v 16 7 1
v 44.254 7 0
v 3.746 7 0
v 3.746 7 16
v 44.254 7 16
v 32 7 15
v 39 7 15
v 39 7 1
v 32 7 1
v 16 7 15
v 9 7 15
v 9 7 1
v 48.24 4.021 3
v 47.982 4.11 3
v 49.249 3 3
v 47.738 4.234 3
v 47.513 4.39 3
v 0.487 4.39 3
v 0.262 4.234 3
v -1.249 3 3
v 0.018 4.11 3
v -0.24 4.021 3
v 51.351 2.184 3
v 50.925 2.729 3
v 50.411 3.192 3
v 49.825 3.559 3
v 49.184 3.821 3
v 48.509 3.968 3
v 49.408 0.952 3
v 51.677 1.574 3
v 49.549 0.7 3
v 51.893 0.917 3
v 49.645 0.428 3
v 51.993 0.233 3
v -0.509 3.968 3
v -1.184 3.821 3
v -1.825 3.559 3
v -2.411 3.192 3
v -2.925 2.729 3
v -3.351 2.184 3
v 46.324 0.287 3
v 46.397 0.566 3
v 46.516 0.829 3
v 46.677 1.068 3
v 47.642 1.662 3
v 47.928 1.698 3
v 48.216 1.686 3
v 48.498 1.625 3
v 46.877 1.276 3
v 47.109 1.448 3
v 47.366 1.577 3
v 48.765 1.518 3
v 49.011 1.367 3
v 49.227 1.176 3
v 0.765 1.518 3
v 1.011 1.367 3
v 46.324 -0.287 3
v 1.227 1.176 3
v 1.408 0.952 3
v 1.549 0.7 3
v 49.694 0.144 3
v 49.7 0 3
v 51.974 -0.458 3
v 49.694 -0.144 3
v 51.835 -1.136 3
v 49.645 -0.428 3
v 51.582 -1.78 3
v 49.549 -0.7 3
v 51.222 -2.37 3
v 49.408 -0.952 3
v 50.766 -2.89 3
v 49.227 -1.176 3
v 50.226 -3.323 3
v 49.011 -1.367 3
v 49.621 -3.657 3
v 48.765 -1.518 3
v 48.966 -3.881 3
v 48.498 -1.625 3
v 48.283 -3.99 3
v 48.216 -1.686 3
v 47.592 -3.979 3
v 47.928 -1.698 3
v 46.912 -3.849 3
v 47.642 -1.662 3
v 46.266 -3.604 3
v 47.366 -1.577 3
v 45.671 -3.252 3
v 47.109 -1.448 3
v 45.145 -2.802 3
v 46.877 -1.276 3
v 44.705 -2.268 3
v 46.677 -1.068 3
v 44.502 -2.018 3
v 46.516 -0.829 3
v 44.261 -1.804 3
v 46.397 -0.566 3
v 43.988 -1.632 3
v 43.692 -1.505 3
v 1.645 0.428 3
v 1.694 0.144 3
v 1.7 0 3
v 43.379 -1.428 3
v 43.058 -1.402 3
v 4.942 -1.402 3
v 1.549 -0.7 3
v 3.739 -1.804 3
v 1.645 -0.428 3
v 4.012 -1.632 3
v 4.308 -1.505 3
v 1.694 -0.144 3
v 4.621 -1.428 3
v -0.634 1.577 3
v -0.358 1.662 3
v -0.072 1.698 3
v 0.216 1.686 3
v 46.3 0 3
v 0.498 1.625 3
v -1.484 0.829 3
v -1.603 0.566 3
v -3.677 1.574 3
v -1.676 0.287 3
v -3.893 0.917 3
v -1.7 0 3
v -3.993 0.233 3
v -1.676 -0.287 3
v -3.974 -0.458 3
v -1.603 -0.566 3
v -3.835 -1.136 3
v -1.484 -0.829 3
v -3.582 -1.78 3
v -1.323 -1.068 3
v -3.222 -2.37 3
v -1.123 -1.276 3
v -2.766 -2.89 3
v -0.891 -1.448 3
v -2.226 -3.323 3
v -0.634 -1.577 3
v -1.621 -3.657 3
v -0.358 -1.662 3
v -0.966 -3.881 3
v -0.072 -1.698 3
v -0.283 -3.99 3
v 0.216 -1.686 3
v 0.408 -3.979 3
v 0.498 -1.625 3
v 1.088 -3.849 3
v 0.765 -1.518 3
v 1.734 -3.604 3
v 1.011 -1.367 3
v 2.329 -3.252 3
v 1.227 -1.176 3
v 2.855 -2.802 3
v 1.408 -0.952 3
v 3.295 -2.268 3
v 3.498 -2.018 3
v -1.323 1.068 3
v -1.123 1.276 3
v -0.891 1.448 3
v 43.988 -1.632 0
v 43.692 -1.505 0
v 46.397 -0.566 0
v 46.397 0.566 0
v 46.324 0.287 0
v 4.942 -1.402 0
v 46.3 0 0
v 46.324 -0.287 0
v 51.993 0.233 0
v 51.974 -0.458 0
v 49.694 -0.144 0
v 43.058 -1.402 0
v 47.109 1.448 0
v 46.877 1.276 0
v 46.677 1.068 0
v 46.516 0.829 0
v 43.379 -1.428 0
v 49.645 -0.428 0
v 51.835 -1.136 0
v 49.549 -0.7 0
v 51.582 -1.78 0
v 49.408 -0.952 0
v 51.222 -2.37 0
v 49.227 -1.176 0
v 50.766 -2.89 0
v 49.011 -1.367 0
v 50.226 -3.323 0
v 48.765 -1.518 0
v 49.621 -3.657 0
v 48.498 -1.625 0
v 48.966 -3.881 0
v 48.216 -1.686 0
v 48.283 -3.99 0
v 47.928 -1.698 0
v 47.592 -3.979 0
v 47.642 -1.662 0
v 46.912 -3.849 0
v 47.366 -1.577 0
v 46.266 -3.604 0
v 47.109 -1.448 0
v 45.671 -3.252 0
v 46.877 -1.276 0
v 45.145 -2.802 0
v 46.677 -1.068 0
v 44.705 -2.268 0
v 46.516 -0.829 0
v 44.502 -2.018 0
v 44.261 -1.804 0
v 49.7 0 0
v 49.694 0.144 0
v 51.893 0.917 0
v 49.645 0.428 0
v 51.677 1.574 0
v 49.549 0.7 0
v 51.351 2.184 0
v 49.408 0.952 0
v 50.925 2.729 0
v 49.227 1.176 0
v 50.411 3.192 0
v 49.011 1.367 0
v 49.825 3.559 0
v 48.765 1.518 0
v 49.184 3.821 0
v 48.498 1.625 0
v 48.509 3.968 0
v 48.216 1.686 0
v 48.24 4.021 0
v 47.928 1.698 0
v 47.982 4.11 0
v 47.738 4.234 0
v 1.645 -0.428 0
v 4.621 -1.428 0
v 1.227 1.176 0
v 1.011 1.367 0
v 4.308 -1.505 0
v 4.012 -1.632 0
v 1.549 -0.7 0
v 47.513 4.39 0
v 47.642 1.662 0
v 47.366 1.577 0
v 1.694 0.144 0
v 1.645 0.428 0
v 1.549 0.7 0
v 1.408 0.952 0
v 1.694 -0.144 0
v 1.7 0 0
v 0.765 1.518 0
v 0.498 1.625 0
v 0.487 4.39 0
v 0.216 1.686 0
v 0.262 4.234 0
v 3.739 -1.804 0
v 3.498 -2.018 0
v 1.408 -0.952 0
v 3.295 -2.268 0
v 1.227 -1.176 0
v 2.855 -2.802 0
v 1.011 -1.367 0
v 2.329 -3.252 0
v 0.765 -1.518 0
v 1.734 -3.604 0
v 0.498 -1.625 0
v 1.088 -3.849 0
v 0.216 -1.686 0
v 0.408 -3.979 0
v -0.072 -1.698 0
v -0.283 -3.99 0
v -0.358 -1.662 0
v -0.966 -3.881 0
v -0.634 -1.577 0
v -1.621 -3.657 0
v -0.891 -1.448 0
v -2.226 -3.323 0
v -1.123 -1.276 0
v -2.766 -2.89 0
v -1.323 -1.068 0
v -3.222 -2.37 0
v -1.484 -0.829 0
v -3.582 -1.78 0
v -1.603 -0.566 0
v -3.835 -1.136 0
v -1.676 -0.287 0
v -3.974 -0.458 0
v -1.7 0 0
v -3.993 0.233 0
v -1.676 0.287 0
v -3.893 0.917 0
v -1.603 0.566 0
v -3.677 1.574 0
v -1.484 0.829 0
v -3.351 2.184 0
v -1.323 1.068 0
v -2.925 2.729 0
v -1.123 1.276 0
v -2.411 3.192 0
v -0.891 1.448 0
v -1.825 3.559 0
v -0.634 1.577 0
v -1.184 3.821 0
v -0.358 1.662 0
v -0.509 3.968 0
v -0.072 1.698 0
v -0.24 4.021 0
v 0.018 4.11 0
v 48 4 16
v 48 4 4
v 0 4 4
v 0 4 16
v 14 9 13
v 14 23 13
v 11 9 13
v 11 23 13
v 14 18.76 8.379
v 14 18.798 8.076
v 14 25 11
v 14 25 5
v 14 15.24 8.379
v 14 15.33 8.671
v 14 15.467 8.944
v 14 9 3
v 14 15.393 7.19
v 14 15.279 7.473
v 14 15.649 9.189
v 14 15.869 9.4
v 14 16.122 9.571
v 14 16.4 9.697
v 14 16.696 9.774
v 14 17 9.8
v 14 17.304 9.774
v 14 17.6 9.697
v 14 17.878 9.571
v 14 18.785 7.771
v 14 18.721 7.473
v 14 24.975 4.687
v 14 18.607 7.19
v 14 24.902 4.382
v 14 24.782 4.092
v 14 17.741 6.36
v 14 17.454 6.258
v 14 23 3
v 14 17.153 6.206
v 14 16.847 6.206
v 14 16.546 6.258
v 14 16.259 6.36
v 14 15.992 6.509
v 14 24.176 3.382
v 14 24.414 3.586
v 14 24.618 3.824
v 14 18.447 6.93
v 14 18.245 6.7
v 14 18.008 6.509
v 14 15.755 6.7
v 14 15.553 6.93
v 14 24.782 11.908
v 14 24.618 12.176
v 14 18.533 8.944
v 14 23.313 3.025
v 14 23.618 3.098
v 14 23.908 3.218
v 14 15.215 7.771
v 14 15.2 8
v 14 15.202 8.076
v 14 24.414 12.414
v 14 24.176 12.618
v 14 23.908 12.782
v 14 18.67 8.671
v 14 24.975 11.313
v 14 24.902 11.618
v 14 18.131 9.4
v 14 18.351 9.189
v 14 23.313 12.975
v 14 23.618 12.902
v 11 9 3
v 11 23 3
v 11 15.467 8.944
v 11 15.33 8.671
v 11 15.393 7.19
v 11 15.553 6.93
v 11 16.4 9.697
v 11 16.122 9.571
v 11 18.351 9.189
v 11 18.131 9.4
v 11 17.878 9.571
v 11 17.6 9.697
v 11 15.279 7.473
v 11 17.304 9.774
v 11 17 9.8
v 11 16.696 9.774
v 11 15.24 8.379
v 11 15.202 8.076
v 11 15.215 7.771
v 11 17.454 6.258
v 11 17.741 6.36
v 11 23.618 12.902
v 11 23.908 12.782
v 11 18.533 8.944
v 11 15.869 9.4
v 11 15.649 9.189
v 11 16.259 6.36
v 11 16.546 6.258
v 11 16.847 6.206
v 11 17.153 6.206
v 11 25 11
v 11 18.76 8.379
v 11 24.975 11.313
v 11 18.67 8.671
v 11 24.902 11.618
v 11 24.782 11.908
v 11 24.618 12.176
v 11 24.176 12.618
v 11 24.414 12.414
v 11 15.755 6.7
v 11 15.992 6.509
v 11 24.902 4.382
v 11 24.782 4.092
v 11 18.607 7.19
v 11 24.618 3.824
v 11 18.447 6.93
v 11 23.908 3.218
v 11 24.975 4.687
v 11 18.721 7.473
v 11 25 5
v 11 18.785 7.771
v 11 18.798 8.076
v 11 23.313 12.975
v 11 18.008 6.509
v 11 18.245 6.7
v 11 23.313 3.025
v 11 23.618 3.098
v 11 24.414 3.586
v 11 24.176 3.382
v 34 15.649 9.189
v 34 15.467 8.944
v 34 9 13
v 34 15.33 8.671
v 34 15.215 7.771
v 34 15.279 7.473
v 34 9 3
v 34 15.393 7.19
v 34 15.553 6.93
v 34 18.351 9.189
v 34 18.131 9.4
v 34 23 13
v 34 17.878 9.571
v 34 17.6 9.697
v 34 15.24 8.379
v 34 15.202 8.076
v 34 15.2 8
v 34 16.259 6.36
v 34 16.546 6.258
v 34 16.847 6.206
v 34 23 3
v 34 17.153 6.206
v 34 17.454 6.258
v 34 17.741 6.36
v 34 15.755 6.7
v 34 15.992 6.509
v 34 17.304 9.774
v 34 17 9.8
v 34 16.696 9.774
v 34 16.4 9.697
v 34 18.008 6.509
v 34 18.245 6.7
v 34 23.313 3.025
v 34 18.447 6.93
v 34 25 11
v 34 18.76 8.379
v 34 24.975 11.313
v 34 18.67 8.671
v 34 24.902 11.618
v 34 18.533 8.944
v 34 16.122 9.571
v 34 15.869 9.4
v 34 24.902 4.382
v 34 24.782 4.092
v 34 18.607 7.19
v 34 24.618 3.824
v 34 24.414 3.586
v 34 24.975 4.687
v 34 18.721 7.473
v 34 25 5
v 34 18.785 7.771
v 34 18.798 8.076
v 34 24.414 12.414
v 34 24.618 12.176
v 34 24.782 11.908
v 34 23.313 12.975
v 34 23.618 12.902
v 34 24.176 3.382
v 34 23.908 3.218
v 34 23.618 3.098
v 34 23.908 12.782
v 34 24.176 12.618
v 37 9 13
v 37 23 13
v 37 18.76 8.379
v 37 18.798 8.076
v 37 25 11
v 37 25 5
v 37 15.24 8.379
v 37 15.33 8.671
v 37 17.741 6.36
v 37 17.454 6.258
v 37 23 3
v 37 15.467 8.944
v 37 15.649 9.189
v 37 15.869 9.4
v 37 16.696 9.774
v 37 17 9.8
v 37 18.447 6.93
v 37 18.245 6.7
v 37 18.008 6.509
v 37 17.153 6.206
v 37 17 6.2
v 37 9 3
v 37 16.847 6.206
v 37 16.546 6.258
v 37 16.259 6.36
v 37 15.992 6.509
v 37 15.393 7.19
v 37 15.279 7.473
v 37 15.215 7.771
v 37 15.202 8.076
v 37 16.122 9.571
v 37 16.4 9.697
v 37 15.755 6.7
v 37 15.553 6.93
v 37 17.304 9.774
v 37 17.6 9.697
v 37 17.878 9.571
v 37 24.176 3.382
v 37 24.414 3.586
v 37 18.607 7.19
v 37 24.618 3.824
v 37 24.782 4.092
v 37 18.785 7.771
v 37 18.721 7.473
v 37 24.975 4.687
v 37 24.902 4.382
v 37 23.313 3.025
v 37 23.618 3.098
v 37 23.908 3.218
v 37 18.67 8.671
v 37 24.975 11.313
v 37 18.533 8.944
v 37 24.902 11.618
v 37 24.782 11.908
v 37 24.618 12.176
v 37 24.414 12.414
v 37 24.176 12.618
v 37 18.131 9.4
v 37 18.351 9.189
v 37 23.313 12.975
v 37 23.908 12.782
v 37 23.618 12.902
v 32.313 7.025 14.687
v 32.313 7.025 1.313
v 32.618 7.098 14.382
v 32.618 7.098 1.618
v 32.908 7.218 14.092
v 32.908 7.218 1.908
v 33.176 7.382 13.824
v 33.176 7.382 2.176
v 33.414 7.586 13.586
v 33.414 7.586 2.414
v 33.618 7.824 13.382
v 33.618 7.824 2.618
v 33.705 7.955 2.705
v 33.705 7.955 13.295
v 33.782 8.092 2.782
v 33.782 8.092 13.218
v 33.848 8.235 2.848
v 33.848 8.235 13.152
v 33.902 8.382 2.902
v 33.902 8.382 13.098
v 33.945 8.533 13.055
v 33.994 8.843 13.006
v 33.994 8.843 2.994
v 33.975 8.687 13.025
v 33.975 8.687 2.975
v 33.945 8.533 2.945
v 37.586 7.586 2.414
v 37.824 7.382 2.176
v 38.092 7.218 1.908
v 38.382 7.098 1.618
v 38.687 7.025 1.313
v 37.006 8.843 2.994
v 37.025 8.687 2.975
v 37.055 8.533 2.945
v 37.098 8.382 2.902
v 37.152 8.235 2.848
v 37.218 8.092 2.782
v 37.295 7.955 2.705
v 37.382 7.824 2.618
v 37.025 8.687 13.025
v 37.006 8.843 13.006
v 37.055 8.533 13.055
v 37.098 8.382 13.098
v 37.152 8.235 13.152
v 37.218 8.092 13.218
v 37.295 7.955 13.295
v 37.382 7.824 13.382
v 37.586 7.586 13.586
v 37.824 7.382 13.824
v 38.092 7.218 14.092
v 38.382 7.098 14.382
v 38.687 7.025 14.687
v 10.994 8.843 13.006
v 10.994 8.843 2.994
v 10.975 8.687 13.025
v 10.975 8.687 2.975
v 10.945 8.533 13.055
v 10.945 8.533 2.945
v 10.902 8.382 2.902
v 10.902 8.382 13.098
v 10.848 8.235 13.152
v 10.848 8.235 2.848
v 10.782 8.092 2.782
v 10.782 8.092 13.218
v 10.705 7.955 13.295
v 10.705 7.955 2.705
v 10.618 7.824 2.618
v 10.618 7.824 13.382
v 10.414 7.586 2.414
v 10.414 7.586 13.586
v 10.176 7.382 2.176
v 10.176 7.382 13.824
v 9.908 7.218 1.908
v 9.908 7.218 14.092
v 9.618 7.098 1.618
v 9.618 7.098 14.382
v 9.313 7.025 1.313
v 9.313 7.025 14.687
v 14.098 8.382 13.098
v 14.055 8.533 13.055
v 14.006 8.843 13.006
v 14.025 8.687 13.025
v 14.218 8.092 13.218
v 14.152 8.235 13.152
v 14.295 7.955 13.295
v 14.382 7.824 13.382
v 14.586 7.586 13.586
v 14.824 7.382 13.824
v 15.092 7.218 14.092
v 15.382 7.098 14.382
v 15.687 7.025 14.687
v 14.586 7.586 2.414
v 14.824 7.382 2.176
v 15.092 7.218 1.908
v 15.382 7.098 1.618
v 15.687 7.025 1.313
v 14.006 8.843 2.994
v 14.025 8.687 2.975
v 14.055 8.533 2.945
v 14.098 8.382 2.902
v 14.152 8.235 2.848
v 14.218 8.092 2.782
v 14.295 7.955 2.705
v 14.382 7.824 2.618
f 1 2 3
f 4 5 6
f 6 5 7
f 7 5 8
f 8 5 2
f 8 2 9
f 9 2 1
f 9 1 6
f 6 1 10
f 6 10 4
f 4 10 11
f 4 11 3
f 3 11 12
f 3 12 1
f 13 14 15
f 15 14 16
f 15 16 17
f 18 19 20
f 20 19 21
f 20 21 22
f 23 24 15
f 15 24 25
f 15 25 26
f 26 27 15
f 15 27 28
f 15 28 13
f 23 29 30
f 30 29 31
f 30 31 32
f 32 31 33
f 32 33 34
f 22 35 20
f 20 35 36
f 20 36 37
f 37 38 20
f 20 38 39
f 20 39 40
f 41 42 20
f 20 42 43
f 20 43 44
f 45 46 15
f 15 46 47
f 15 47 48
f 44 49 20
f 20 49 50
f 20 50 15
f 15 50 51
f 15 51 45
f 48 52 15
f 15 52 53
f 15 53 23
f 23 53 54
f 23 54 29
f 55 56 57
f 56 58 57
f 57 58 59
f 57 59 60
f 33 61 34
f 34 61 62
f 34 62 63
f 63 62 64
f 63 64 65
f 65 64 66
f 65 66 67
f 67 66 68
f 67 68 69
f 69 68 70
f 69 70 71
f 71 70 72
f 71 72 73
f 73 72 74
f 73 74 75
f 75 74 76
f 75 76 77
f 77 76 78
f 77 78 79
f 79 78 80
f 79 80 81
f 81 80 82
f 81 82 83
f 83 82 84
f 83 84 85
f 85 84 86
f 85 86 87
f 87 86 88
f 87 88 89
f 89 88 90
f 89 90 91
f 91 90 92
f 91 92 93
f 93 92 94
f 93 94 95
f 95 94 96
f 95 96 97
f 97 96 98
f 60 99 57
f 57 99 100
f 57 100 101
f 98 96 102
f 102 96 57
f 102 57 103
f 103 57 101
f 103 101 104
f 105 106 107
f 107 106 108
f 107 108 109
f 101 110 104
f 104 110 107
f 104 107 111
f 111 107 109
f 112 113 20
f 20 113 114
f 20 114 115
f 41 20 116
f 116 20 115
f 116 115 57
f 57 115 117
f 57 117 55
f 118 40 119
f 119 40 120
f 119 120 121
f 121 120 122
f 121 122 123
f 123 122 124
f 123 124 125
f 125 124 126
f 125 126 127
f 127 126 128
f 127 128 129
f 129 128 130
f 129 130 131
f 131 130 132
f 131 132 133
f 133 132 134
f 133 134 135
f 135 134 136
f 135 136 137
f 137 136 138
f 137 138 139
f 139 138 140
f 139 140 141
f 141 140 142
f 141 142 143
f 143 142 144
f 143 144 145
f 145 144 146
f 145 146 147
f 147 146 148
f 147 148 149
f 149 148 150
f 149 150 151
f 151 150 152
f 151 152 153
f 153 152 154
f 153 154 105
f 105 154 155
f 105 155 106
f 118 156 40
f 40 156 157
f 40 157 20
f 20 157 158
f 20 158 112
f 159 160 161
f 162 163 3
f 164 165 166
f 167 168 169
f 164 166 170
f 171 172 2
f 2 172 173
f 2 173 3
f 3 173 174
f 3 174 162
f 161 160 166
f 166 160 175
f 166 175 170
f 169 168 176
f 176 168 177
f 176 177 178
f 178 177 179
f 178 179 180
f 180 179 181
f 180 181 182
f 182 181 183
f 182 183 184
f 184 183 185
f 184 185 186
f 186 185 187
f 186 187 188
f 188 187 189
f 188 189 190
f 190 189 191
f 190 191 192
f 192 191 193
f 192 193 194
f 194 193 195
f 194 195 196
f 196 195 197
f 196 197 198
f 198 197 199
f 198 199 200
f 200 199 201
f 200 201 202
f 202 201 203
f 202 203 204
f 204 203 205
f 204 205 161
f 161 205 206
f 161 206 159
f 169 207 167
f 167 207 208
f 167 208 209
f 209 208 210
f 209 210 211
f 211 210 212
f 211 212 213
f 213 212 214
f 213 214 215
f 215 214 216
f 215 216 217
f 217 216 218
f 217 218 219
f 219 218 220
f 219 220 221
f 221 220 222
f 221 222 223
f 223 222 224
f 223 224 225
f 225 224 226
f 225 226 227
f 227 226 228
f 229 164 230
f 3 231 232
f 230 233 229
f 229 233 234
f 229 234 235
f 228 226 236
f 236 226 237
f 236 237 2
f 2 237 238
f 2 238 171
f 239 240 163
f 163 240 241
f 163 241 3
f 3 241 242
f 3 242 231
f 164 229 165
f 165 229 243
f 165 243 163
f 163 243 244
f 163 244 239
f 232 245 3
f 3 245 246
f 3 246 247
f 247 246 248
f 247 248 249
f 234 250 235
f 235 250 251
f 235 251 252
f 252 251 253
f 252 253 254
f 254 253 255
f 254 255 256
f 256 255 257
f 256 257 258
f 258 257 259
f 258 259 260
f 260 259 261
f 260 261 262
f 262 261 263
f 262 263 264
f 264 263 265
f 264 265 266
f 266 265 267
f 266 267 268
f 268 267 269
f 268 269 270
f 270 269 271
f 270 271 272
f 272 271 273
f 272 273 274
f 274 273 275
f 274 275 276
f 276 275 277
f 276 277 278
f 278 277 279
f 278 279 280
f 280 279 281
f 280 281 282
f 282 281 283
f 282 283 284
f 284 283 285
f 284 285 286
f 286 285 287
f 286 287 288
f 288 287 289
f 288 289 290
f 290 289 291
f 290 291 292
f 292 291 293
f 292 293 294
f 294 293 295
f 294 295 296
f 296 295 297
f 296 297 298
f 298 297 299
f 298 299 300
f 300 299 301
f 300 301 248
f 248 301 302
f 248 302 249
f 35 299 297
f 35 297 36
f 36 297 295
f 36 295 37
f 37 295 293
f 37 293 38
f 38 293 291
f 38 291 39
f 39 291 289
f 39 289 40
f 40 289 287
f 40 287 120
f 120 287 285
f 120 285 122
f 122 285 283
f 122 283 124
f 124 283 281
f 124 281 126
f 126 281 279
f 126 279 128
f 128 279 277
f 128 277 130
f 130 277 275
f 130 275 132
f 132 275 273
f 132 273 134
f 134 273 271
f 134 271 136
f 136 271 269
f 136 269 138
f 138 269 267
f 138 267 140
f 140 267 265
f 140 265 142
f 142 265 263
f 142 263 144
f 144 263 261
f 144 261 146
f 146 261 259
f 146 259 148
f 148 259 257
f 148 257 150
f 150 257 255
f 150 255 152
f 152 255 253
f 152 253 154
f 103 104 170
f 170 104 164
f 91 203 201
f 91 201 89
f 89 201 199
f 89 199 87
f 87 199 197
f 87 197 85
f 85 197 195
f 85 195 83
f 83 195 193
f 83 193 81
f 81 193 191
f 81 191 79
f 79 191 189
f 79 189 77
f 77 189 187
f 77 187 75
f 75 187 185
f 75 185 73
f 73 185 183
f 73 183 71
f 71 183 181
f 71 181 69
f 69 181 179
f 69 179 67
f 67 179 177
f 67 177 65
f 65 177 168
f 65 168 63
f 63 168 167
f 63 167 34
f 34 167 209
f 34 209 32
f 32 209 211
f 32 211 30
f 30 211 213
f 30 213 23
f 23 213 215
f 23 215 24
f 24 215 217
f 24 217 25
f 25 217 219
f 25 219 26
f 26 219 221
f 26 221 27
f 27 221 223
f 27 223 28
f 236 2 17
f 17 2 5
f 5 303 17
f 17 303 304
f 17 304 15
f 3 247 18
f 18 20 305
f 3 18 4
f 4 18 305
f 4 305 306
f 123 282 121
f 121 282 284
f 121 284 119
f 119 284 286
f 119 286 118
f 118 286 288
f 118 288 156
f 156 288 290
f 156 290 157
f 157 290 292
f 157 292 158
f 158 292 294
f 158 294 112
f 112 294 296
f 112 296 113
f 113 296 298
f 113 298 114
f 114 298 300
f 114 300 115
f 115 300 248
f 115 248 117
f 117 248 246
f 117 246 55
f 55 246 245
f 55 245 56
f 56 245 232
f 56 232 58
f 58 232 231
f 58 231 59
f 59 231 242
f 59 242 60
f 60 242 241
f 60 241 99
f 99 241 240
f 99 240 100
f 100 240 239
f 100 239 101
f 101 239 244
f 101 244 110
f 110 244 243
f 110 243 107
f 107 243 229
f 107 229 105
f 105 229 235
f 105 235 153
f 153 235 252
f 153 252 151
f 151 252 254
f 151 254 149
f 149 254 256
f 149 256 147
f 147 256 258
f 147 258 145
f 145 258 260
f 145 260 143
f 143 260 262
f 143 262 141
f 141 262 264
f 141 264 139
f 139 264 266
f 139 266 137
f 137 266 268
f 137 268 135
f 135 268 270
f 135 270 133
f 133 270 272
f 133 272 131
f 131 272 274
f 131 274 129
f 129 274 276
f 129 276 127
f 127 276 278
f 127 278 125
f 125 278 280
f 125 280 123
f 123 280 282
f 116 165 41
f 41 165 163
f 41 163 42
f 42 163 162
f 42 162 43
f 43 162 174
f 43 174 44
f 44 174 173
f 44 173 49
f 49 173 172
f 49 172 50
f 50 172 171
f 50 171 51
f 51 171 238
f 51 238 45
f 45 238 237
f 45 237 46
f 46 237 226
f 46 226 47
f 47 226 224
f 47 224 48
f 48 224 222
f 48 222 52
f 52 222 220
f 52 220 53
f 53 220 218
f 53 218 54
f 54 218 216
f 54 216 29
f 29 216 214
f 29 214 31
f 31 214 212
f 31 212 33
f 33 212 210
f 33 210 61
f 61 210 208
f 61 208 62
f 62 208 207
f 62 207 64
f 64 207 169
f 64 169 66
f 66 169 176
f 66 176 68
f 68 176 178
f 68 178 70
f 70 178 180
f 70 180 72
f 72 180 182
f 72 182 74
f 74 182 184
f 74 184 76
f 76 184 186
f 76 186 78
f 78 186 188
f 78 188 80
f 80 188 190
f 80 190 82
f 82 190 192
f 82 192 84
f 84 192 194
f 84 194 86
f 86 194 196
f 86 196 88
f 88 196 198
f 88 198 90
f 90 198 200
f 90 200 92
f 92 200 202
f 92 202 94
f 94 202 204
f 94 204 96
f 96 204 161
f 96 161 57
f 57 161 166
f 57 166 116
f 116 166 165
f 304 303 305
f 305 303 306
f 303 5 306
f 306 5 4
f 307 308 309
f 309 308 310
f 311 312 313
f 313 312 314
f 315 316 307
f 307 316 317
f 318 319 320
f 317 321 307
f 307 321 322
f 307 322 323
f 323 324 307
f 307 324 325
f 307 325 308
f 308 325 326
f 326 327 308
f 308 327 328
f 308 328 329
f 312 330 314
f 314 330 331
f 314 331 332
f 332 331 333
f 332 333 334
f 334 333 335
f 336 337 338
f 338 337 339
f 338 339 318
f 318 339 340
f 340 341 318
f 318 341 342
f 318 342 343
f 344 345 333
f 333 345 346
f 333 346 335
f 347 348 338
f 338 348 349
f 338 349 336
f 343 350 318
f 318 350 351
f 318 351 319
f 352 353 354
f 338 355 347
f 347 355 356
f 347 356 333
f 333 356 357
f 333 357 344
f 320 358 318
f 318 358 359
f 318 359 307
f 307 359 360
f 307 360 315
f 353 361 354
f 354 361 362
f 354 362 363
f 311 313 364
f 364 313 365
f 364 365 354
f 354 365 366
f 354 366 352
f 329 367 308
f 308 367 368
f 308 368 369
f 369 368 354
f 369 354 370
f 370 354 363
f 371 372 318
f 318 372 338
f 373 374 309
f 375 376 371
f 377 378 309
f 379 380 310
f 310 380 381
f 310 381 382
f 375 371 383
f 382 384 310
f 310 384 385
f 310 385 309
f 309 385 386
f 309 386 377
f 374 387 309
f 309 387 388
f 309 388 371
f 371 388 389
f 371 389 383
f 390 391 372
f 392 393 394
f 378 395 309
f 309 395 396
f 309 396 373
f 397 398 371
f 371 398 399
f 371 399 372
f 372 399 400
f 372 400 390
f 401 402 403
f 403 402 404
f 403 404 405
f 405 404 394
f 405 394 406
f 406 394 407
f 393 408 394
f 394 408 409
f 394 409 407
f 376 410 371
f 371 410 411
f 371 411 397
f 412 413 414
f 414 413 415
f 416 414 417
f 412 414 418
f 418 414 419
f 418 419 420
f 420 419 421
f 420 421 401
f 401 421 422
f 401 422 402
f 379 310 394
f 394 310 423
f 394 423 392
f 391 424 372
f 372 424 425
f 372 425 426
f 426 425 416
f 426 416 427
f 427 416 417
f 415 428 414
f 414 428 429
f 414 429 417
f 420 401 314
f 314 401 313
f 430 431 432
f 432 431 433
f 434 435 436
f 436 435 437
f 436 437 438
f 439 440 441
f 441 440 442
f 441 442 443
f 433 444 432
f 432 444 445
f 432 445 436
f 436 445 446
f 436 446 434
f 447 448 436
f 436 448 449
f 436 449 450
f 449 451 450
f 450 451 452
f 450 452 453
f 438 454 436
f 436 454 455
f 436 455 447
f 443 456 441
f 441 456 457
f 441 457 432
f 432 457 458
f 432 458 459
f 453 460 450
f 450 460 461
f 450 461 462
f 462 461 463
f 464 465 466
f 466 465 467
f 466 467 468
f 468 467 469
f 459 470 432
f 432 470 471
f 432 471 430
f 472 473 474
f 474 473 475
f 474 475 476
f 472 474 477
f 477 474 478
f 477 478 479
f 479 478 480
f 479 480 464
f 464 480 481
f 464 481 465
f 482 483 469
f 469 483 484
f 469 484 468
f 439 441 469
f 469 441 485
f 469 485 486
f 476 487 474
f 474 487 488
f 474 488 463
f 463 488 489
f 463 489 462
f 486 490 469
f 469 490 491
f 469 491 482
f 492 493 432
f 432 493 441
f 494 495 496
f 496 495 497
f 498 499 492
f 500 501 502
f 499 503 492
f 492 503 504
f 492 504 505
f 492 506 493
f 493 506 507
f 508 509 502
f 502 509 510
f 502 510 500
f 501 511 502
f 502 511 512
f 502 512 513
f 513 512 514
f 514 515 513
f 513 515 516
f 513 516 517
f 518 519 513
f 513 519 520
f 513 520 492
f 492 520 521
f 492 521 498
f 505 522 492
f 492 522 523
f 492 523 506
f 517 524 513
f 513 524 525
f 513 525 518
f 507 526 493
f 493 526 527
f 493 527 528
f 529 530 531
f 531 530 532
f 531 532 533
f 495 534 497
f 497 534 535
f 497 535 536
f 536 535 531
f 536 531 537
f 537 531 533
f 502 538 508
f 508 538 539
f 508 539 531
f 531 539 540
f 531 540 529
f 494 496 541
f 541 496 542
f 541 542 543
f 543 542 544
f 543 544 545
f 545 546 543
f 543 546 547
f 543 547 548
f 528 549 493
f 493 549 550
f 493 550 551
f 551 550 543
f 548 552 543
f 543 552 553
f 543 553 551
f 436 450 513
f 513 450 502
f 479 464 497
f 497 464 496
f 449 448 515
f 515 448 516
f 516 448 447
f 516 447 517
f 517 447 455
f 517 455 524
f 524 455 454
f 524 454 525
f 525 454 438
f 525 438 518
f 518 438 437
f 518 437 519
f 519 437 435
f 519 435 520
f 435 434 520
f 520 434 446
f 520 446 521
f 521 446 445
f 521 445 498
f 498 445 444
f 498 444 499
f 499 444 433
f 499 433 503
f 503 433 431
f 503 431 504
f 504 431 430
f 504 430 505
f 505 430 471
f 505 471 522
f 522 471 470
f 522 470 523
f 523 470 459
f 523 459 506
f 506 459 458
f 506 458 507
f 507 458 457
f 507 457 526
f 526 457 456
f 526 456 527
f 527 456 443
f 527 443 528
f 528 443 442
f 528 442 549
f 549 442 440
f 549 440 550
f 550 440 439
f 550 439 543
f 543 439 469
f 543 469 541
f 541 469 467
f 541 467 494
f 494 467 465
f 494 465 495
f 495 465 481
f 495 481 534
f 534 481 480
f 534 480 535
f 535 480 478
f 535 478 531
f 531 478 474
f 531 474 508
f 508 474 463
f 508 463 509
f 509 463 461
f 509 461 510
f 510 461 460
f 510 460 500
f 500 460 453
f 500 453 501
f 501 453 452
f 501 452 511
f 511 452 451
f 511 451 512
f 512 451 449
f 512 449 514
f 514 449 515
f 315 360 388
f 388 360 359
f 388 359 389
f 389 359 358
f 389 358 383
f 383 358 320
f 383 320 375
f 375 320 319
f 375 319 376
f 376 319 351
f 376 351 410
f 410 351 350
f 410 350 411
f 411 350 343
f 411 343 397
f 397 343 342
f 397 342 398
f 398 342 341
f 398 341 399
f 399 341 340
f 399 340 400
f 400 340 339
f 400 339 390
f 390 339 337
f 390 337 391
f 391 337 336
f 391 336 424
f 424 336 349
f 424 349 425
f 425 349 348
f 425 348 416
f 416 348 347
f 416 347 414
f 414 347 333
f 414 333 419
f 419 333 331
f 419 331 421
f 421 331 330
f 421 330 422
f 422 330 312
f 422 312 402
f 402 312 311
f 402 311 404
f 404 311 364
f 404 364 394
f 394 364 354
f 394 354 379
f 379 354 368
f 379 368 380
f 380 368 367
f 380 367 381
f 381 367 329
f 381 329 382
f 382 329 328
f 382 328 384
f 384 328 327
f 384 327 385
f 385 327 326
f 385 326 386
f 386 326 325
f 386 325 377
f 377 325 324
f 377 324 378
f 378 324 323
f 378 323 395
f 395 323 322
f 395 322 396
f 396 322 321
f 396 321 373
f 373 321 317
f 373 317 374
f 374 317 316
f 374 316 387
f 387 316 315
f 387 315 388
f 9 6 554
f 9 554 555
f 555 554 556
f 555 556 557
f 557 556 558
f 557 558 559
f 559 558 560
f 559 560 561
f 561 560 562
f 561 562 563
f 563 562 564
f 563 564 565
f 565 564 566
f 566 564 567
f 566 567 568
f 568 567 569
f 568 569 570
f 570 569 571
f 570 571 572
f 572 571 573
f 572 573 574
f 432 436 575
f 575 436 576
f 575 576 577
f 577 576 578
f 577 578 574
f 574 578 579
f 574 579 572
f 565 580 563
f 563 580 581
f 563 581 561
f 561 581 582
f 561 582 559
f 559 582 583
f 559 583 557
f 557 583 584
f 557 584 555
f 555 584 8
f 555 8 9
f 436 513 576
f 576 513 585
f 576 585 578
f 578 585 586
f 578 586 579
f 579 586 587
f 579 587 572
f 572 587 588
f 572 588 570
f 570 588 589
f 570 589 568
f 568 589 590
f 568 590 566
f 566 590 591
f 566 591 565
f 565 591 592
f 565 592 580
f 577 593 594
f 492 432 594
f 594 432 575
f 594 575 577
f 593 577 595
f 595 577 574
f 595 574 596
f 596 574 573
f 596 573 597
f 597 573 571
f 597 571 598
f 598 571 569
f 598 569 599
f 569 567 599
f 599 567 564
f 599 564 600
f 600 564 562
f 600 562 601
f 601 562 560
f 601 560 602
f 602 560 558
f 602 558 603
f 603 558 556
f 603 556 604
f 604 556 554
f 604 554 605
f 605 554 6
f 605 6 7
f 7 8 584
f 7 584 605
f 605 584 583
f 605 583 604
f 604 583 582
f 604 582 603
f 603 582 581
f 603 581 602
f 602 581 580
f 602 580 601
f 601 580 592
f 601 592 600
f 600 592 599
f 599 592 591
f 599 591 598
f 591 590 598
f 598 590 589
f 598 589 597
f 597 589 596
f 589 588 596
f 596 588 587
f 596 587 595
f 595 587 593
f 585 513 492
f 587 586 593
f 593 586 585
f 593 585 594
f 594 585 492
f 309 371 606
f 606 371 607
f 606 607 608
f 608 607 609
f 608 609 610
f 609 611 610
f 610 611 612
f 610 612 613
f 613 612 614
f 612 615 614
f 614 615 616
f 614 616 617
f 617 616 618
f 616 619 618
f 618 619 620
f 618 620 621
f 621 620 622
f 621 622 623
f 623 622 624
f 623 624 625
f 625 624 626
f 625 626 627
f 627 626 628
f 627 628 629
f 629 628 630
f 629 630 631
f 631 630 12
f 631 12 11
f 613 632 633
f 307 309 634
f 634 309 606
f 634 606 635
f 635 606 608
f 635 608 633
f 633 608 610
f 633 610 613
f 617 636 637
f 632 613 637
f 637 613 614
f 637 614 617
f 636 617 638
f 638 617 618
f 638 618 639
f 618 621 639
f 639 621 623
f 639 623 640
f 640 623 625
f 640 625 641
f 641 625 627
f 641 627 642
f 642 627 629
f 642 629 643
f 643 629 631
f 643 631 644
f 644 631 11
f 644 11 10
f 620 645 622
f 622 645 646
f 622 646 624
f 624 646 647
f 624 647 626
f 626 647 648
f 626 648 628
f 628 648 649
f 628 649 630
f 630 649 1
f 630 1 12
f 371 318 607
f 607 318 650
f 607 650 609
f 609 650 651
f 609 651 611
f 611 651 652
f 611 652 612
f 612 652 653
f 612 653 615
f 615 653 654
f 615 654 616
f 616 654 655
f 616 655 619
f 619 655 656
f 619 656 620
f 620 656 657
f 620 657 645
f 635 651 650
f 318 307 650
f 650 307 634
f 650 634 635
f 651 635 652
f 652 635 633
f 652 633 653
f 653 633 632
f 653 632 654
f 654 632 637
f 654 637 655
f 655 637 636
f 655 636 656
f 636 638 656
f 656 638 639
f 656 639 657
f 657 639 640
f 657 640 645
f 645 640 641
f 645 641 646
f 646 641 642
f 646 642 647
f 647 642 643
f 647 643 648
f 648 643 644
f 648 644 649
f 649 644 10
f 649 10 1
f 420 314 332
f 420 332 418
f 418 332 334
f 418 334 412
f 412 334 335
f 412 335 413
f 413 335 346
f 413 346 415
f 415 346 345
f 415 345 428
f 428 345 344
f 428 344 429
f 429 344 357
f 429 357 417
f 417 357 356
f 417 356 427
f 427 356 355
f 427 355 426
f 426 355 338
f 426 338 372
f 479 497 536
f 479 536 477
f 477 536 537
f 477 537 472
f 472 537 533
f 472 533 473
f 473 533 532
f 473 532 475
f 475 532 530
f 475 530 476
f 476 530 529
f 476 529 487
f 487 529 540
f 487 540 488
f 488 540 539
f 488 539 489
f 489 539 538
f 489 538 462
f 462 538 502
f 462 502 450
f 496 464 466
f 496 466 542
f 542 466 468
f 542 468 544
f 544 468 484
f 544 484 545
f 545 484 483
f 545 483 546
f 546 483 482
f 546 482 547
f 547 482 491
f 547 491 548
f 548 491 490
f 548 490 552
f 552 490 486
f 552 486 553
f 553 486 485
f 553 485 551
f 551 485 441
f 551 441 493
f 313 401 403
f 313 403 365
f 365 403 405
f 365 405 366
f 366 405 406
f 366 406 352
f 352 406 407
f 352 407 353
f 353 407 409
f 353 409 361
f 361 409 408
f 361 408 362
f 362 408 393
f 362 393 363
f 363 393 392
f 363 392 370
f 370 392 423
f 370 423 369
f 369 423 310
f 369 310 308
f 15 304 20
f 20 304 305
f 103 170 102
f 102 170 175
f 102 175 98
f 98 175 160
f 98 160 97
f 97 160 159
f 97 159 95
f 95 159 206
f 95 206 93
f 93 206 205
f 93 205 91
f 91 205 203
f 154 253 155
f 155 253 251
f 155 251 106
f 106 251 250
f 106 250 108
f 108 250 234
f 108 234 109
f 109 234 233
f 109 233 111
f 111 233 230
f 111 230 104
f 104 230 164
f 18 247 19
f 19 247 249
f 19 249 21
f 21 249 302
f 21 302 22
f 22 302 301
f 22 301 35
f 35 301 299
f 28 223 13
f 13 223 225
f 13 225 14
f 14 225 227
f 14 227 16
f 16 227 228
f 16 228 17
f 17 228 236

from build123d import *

# Parameters (mm, degrees)
SKETCH_1_R          = 1.7
EXTRUDE_1_DEPTH     = 3
EXTRUDE_2_DEPTH     = 13
EXTRUDE_3_DEPTH     = 18
SKETCH_5_R          = 1.8
CUT_EXTRUDE_1_DEPTH = 34
FILLET_1_R          = 2
CHAMFER_1_SIZE      = 1
FILLET_2_R          = 2


with BuildPart() as part:
    # Эскиз1 → Бобышка-Вытянуть1 (new body)
    with BuildSketch(Plane.XY):
        with BuildLine():
            Line((3.746141591, -1.402292116), (44.253858409, -1.402292116))
            ThreePointArc((44.253858409, -1.402292116), (51.28703274, -2.279345469), (48, 4))
            Line((48, 4), (44.253858409, 7))
            Line((44.253858409, 7), (3.746141591, 7))
            Line((3.746141591, 7), (0, 4))
            ThreePointArc((0, 4), (-3.28703274, -2.279345469), (3.746141591, -1.402292116))
        make_face()
        Circle(SKETCH_1_R, mode=Mode.SUBTRACT)
        with Locations((48, 0)):
            Circle(SKETCH_1_R, mode=Mode.SUBTRACT)
    extrude(amount=EXTRUDE_1_DEPTH)

    # Эскиз2 → Бобышка-Вытянуть2 (add)
    with BuildSketch(Plane.XY.offset(3)):
        Polygon((0, 4), (48, 4), (44.253858409, 7), (3.746141591, 7), align=None)
    extrude(amount=EXTRUDE_2_DEPTH)

    # Эскиз4 → Бобышка-Вытянуть3 (add)
    with BuildSketch(Plane(origin=(0, 7, 0), x_dir=(1, 0, 0), z_dir=(0, 1, 0))):
        Polygon((11, -13), (14, -13), (14, -8), (14, -3), (11, -3), align=None)
        Polygon((34, -8), (34, -3), (37, -3), (37, -13), (34, -13), align=None)
    extrude(amount=EXTRUDE_3_DEPTH)

    # Эскиз5 → Вырез-Вытянуть1 (cut)
    with BuildSketch(Plane.ZY.offset(-11)):
        with Locations(Location((8, 17, 0), (0, 0, 270))):
            Circle(SKETCH_5_R)
    extrude(amount=-CUT_EXTRUDE_1_DEPTH, mode=Mode.SUBTRACT)

    # Скругление1
    fillet_1_edges = [part.edges().sort_by_distance(p)[0] for p in [
        (12.5, 7, 13),
        (14, 7, 8),
        (12.5, 7, 3),
        (11, 7, 8),
        (12.5, 25, 13),
        (12.5, 25, 3),
        (35.5, 25, 13),
        (35.5, 25, 3),
        (34, 7, 8),
        (35.5, 7, 3),
        (37, 7, 8),
        (35.5, 7, 13),
    ]]
    fillet(fillet_1_edges, radius=FILLET_1_R)

    # Фаска1
    # the kernel refuses this chamfer: 1 mm, written as the material it adds along each edge
    with BuildSketch(Plane(origin=(-2.571682988, 4, 3), x_dir=(0, 0.027495876610586053, 0.9996219169112968), z_dir=(1, 0, 0))) as chamfer_1_piece_1_section:
        Polygon((CHAMFER_1_SIZE * 0.999621916911, CHAMFER_1_SIZE * 0.0274958766106), (-CHAMFER_1_SIZE * 0.0274958766106, CHAMFER_1_SIZE * 0.999621916911), (0, 0), align=None)
    chamfer_1_piece_1 = extrude(amount=53.143365976, mode=Mode.PRIVATE)
    chamfer_1_piece_1 = split(chamfer_1_piece_1, bisect_by=Plane(origin=(19.332961003, 26.957252121, 3.279224906), z_dir=(-0.6250871381508221, -0.7805549754619563, 0)), keep=Keep.TOP, mode=Mode.PRIVATE)
    chamfer_1_piece_1 = split(chamfer_1_piece_1, bisect_by=Plane(origin=(0.14685454, 4.117604636, 3.279224906), z_dir=(0.625087138150823, -0.7805549754619556, 0)), keep=Keep.TOP, mode=Mode.PRIVATE)
    add(chamfer_1_piece_1)

    # Скругление2
    fillet_2_edges = [part.edges().sort_by_distance(p)[0] for p in [
        (0, 4, 1.5),
        (48, 4, 1.5),
        (44.253858409, -1.402292116, 1.5),
        (3.746141591, -1.402292116, 1.5),
    ]]
    fillet(fillet_2_edges, radius=FILLET_2_R)


solid = part.part
